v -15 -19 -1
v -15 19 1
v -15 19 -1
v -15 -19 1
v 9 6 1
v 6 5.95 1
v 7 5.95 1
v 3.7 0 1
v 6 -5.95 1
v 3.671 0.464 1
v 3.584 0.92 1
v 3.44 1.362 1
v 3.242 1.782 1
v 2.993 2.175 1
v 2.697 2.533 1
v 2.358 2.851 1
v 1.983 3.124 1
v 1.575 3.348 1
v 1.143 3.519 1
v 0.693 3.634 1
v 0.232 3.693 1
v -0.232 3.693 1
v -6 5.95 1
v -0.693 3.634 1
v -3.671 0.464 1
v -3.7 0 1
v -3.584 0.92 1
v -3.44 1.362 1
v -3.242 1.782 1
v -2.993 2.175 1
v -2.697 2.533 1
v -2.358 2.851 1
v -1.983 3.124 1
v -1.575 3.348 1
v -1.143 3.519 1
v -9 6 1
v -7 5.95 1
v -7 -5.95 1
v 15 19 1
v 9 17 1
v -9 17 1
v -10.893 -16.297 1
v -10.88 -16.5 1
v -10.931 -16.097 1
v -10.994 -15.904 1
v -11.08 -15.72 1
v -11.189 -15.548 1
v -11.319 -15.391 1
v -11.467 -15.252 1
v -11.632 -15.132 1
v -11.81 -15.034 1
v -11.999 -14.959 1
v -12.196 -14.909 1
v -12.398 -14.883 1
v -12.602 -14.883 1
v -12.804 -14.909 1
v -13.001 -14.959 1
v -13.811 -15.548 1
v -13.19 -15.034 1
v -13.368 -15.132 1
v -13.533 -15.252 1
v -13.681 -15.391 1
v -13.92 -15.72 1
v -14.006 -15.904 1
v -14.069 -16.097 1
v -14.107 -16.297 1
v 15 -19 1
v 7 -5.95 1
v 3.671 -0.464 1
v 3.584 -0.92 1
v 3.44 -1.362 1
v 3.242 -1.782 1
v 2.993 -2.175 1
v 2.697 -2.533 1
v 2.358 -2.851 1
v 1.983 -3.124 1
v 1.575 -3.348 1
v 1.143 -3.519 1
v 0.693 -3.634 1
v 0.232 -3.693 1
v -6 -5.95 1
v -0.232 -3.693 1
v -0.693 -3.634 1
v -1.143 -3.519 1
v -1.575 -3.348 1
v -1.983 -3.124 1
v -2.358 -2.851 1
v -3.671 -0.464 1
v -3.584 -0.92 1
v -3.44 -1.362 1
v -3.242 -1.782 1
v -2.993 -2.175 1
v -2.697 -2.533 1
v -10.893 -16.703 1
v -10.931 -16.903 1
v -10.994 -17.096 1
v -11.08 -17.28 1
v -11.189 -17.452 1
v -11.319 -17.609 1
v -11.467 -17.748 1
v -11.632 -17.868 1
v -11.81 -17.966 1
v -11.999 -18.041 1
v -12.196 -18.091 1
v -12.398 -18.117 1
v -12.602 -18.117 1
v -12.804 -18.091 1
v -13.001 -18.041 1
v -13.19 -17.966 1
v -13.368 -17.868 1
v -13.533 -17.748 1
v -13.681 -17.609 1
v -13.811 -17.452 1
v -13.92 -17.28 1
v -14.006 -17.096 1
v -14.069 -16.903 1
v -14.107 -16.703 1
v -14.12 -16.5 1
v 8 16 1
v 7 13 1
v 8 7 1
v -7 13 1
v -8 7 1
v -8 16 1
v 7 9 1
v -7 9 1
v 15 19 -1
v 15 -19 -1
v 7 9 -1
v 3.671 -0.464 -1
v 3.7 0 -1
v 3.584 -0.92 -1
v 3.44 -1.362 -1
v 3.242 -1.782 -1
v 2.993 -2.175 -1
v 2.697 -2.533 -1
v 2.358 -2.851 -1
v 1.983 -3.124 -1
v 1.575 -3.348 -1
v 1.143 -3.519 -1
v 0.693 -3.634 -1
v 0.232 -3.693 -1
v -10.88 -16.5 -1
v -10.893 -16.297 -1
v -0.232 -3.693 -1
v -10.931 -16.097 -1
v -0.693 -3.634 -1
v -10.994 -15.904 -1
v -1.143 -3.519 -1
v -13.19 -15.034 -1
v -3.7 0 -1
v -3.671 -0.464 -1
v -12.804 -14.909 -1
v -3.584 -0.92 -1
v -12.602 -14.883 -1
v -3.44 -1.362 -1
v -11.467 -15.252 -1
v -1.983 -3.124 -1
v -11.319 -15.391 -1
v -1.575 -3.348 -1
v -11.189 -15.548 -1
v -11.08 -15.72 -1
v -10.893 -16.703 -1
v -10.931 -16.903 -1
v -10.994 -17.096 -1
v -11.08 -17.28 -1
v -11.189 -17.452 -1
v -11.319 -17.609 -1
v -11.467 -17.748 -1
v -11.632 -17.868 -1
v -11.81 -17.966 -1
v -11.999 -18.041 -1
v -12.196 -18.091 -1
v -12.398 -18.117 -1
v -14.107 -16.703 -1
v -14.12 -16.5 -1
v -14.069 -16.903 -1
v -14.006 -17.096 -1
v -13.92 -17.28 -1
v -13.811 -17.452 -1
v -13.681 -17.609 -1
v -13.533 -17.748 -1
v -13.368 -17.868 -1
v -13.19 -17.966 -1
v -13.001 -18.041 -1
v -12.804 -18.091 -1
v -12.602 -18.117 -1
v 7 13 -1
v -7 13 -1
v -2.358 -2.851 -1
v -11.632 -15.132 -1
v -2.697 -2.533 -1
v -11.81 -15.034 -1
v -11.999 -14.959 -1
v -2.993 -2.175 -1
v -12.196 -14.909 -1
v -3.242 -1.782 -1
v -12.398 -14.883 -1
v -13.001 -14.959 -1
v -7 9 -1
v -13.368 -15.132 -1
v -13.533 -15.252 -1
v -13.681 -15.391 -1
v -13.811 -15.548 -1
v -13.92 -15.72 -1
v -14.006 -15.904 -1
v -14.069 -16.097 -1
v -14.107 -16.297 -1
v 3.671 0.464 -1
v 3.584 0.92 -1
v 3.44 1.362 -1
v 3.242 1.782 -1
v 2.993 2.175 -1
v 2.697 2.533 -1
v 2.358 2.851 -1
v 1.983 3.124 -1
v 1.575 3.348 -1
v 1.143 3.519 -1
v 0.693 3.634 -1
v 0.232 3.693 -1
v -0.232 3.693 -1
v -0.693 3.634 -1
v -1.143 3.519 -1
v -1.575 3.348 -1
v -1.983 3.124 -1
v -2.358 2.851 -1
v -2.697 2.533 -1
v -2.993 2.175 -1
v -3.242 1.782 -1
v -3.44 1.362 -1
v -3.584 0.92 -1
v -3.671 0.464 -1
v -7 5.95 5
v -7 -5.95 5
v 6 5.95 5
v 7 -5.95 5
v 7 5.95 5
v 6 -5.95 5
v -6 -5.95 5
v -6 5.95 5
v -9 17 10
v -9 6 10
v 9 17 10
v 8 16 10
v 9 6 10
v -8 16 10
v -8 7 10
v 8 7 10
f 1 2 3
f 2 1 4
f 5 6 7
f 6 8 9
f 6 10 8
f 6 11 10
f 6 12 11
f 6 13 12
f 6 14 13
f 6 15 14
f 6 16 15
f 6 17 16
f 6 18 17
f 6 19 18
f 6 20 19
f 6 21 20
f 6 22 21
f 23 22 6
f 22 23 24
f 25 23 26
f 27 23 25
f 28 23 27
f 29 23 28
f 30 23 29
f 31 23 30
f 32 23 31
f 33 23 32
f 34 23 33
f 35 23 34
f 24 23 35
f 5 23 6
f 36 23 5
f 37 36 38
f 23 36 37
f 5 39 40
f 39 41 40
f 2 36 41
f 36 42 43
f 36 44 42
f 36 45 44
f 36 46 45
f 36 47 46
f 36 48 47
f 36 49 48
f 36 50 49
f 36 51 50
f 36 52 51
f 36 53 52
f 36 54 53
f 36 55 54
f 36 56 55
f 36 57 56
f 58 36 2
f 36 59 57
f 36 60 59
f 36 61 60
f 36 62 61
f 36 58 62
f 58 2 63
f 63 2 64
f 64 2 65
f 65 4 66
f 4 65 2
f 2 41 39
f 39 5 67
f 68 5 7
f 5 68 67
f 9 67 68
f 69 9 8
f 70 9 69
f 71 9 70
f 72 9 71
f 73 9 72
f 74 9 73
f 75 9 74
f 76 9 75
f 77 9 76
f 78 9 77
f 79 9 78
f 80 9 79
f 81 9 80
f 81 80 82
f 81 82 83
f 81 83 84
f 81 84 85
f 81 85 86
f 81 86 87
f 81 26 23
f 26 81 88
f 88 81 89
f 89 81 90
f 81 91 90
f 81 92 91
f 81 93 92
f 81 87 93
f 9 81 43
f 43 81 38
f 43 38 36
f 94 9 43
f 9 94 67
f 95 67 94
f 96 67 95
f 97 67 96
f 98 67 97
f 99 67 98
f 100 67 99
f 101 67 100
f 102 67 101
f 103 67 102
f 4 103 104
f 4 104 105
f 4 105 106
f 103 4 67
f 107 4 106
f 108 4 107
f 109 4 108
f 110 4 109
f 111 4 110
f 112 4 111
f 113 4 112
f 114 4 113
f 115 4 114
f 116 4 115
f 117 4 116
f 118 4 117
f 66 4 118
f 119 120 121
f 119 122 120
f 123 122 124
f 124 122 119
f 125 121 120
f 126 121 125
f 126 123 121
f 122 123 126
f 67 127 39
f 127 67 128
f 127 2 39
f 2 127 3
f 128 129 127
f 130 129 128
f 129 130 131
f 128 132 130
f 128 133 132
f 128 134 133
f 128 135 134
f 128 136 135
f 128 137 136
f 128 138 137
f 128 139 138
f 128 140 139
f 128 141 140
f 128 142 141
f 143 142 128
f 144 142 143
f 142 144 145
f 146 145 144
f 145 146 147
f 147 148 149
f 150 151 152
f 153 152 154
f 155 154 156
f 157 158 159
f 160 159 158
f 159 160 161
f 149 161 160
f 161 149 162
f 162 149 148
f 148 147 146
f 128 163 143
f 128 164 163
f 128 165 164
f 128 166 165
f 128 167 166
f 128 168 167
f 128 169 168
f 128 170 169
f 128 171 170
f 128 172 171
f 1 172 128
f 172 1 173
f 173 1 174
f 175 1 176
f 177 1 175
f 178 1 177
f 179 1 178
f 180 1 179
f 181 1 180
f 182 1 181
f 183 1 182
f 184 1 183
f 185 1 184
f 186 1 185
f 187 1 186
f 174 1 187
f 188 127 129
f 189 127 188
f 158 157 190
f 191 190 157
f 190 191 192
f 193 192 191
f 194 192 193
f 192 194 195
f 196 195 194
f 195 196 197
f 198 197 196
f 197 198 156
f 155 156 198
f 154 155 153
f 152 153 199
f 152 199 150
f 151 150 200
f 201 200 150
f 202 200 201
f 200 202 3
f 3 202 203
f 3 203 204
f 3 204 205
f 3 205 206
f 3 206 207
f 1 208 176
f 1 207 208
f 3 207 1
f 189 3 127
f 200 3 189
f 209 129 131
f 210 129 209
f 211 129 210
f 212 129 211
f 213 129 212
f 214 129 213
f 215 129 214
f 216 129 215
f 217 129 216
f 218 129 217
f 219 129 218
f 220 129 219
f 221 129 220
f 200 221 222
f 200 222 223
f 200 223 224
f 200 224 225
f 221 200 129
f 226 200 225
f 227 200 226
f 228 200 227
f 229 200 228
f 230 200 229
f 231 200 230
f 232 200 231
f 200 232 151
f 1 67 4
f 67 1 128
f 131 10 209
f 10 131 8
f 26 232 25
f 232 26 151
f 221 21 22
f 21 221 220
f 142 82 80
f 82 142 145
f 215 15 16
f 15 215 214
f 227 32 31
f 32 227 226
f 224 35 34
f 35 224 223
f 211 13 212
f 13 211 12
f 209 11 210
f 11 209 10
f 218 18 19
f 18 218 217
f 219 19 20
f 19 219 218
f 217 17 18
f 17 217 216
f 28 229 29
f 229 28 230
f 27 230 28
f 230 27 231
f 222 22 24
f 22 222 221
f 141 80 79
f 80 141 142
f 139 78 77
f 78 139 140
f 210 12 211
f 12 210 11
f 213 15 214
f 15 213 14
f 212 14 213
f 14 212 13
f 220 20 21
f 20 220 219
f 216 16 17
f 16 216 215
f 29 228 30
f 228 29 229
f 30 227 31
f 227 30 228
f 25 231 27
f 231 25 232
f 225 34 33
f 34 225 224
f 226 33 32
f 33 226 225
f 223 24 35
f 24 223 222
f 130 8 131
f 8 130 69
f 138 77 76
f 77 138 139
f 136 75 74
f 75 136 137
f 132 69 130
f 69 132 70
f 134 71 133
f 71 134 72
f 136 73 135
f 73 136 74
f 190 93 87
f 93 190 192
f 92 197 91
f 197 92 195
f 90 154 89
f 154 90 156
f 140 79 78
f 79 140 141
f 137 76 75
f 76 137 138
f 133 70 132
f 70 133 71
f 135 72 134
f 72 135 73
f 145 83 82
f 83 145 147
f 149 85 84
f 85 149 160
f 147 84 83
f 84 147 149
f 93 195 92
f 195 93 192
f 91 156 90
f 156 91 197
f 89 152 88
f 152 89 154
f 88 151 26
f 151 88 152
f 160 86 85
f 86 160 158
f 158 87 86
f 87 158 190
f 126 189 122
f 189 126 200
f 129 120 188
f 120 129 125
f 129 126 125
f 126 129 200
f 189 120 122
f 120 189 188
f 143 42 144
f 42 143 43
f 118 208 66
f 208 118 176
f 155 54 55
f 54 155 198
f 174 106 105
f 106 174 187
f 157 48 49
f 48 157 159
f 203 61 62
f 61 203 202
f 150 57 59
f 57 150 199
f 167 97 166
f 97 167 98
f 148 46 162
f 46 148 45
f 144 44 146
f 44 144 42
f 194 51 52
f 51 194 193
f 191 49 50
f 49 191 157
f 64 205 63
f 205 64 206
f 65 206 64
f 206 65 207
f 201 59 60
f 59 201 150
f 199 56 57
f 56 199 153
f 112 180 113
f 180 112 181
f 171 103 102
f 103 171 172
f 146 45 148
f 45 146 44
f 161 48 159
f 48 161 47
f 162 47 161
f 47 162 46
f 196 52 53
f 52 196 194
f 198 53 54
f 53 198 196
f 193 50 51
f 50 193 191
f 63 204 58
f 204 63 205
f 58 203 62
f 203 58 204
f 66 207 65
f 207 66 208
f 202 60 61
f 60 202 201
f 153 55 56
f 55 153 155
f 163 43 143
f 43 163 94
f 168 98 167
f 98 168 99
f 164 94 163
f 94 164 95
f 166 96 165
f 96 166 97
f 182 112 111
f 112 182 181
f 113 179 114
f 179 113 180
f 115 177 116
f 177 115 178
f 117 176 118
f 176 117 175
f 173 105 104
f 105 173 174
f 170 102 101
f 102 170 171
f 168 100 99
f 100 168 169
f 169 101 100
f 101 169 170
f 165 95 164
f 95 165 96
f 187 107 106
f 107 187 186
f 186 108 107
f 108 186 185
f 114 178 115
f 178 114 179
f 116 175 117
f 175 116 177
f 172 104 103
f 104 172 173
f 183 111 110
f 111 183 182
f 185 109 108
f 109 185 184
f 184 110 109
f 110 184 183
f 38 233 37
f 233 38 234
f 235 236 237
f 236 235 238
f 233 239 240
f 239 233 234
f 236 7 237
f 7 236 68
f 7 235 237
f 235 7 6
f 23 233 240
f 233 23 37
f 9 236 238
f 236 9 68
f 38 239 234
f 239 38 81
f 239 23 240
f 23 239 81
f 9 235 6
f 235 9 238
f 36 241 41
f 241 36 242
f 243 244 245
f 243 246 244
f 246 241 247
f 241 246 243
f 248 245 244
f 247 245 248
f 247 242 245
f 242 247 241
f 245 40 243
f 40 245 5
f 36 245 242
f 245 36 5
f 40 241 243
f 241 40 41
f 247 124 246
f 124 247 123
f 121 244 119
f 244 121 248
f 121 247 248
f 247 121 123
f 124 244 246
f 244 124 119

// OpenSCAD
// octacon frontpanel
// alias openscad=~/Applications/OpenSCAD-2021.01-x86_64.AppImage
// openscad -o front_test.stl front_test.scad
// f3d front_test.stl

// panel size
pd=2.0;
pw=30.0;
pw2=pw/2.0;
pw4=pw/4.0;
ph=38.0;
ph2=ph/2.0;

dw4=pw4; // simplify to keep it centered

// encoder
ew=12;
eh=12;
er=3.7;  // shaft
em=0;

// leds
lw=14;
lh=4;
lm=11;

// support
sw=4;
sw2=sw/2.0;
sw4=sw/4.0;
esh=5;
esh2=esh/2.0;
eshx=esh+0.2;
lsh=10;
lsh2=lsh/2.0;
lshx=lsh+0.2;
lsg=3;
lsg2=lsg/2.0;

// M3 screw holes
m3r=1.5;
m3rx=1.62; // extra size to cover 3d print thickness
// on the corners put screw-holes with 1mm offset
m3sd=1+m3r;

// make it smooth
$fn=50;

// main body
difference() {
    cube([pw,ph,pd],center=true);

    // encoders
    // top row
    translate([0,em,0]) { 
        translate([-(pw4-dw4),0,0]) { cylinder(h=5,r=er, center=true); }
    }

    // leds
    // top row
    translate([0,lm,0]) { 
        translate([-(pw4-dw4),0,0]) { cube([lw,lh,5], center=true); }
    }

    // M3 holes (1 mm off the side)
    translate([-(pw2-m3sd),-(ph2-m3sd),0]) { cylinder(h=5,r=m3rx, center=true); }
   
}
// encoder supports
module encoder_support() {
    difference() {
        cube([ew+sw2,(eh-0.1),esh], center=true);
        cube([ew,eh,eshx], center=true);
    }
}

translate([0,0,esh2]) {
    // top row
    translate([0,em,0]) { 
        translate([-(pw4-dw4),0,0]) { encoder_support(); }
    }
}
// led shielding
module led_shield() {
    difference() {
        cube([lw+sw,(lh+lsg)+sw,lsh], center=true);
        cube([lw+sw2,(lh+lsg)+sw2,lshx], center=true);
    }
}

translate([0,0,lsh2]) {
    // top row
    translate([0,+(lm+lsg2-1),0]) {
        translate([-(pw4-dw4),0,0]) { led_shield(); }
    }    
}
